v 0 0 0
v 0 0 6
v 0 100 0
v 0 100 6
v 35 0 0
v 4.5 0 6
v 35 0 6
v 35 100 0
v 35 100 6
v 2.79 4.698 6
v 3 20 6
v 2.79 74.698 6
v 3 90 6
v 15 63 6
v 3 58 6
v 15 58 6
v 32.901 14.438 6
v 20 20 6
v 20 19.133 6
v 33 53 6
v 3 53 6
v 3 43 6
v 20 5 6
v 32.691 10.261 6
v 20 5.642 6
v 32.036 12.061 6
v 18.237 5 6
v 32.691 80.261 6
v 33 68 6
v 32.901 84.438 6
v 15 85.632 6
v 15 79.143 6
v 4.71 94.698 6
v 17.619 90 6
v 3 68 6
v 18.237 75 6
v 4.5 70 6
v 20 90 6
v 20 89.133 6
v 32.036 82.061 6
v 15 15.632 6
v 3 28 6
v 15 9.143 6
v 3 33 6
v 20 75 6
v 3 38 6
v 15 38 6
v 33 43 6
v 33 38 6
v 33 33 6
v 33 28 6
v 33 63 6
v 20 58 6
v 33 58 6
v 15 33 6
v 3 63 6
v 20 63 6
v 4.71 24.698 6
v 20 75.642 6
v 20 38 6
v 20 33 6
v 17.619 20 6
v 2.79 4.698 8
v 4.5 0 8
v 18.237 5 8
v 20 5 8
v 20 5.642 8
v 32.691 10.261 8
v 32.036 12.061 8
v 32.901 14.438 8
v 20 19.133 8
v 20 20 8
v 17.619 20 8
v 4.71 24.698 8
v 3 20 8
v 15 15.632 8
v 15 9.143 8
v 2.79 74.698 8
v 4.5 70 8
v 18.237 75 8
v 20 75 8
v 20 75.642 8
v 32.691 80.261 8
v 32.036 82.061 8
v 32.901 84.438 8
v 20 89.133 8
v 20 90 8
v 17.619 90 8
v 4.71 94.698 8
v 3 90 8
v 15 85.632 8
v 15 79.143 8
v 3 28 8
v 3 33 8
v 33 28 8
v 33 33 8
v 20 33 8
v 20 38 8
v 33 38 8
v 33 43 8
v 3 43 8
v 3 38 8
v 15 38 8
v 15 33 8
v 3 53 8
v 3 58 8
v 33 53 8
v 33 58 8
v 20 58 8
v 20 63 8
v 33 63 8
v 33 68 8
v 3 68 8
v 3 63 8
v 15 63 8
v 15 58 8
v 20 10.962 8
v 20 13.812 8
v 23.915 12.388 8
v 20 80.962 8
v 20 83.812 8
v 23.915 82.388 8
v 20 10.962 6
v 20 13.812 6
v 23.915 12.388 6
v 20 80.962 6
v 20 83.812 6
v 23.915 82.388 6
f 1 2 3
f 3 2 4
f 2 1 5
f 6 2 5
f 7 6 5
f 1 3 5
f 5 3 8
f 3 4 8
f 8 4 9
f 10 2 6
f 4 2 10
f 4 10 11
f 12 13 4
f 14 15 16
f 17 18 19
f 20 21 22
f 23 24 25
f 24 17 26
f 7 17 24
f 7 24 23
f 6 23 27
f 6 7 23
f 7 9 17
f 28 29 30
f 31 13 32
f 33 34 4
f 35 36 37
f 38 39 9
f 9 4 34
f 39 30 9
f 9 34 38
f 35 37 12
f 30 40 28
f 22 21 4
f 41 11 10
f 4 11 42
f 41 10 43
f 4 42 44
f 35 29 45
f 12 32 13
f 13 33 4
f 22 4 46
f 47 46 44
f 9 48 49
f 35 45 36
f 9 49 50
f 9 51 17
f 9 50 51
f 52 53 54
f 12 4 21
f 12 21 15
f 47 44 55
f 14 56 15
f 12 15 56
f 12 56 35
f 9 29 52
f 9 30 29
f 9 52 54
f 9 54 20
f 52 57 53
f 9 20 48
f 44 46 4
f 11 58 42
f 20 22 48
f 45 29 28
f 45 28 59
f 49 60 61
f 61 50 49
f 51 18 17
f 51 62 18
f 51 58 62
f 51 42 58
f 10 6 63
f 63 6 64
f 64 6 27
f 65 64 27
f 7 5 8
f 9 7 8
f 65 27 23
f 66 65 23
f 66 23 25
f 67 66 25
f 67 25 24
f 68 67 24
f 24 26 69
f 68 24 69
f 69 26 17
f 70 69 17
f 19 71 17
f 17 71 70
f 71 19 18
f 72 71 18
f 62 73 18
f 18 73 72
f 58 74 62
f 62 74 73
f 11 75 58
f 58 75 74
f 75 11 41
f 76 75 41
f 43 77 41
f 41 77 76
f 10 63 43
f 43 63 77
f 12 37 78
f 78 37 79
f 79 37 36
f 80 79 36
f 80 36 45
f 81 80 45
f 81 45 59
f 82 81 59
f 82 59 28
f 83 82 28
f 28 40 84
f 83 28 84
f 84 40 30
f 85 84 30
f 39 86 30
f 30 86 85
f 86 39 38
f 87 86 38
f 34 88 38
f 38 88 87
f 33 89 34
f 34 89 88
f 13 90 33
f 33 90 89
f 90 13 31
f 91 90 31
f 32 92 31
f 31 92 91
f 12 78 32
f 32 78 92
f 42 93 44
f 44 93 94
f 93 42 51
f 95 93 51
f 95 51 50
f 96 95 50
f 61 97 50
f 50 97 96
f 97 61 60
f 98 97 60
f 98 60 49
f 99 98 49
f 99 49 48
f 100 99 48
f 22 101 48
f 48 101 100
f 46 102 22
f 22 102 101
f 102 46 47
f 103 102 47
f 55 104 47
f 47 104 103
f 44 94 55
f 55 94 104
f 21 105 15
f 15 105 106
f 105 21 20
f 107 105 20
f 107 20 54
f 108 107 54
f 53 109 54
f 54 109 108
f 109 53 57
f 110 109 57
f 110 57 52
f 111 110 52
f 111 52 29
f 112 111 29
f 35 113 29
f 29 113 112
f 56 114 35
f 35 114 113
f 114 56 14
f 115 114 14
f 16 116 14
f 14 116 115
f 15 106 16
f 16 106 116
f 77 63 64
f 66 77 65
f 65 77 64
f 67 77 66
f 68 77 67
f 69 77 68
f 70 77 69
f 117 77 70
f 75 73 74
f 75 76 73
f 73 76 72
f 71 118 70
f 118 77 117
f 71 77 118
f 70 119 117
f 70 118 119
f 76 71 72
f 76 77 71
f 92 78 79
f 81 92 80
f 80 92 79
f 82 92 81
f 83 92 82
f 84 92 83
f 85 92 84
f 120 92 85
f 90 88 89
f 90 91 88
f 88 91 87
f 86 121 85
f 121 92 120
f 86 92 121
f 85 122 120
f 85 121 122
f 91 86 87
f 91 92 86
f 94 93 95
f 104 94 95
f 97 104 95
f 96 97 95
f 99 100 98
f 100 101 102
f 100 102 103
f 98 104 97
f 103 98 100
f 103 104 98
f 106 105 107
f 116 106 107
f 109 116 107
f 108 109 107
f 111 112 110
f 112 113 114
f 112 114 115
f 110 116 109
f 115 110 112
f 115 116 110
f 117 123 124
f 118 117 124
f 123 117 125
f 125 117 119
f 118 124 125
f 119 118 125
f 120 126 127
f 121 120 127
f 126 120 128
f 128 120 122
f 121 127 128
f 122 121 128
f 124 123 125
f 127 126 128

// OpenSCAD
cube([35,100,6]);
//а
color ([1,1,1]) {
translate ([3,90,4])rotate ([0,0,-20])cube ([30,5,4]);
translate ([4.5,70,4])rotate ([0,0,20])cube ([30,5,4]);
translate ([15,75,4])cube ([5,15,4]);

//н
translate ([3,63,4])cube ([30,5,4]);
translate ([3,53,4])cube ([30,5,4]);
translate ([15,55,4])cube ([5,13,4]);

//н 
translate ([3,38,4])cube ([30,5,4]);
translate ([3,28,4])cube ([30,5,4]);
translate ([15,30,4])cube ([5,13,4]);

//а
translate ([3,20,4])rotate ([0,0,-20])cube ([30,5,4]);
translate ([4.5,0,4])rotate ([0,0,20])cube ([30,5,4]);
translate ([15,5,4])cube ([5,15,4]);
}
